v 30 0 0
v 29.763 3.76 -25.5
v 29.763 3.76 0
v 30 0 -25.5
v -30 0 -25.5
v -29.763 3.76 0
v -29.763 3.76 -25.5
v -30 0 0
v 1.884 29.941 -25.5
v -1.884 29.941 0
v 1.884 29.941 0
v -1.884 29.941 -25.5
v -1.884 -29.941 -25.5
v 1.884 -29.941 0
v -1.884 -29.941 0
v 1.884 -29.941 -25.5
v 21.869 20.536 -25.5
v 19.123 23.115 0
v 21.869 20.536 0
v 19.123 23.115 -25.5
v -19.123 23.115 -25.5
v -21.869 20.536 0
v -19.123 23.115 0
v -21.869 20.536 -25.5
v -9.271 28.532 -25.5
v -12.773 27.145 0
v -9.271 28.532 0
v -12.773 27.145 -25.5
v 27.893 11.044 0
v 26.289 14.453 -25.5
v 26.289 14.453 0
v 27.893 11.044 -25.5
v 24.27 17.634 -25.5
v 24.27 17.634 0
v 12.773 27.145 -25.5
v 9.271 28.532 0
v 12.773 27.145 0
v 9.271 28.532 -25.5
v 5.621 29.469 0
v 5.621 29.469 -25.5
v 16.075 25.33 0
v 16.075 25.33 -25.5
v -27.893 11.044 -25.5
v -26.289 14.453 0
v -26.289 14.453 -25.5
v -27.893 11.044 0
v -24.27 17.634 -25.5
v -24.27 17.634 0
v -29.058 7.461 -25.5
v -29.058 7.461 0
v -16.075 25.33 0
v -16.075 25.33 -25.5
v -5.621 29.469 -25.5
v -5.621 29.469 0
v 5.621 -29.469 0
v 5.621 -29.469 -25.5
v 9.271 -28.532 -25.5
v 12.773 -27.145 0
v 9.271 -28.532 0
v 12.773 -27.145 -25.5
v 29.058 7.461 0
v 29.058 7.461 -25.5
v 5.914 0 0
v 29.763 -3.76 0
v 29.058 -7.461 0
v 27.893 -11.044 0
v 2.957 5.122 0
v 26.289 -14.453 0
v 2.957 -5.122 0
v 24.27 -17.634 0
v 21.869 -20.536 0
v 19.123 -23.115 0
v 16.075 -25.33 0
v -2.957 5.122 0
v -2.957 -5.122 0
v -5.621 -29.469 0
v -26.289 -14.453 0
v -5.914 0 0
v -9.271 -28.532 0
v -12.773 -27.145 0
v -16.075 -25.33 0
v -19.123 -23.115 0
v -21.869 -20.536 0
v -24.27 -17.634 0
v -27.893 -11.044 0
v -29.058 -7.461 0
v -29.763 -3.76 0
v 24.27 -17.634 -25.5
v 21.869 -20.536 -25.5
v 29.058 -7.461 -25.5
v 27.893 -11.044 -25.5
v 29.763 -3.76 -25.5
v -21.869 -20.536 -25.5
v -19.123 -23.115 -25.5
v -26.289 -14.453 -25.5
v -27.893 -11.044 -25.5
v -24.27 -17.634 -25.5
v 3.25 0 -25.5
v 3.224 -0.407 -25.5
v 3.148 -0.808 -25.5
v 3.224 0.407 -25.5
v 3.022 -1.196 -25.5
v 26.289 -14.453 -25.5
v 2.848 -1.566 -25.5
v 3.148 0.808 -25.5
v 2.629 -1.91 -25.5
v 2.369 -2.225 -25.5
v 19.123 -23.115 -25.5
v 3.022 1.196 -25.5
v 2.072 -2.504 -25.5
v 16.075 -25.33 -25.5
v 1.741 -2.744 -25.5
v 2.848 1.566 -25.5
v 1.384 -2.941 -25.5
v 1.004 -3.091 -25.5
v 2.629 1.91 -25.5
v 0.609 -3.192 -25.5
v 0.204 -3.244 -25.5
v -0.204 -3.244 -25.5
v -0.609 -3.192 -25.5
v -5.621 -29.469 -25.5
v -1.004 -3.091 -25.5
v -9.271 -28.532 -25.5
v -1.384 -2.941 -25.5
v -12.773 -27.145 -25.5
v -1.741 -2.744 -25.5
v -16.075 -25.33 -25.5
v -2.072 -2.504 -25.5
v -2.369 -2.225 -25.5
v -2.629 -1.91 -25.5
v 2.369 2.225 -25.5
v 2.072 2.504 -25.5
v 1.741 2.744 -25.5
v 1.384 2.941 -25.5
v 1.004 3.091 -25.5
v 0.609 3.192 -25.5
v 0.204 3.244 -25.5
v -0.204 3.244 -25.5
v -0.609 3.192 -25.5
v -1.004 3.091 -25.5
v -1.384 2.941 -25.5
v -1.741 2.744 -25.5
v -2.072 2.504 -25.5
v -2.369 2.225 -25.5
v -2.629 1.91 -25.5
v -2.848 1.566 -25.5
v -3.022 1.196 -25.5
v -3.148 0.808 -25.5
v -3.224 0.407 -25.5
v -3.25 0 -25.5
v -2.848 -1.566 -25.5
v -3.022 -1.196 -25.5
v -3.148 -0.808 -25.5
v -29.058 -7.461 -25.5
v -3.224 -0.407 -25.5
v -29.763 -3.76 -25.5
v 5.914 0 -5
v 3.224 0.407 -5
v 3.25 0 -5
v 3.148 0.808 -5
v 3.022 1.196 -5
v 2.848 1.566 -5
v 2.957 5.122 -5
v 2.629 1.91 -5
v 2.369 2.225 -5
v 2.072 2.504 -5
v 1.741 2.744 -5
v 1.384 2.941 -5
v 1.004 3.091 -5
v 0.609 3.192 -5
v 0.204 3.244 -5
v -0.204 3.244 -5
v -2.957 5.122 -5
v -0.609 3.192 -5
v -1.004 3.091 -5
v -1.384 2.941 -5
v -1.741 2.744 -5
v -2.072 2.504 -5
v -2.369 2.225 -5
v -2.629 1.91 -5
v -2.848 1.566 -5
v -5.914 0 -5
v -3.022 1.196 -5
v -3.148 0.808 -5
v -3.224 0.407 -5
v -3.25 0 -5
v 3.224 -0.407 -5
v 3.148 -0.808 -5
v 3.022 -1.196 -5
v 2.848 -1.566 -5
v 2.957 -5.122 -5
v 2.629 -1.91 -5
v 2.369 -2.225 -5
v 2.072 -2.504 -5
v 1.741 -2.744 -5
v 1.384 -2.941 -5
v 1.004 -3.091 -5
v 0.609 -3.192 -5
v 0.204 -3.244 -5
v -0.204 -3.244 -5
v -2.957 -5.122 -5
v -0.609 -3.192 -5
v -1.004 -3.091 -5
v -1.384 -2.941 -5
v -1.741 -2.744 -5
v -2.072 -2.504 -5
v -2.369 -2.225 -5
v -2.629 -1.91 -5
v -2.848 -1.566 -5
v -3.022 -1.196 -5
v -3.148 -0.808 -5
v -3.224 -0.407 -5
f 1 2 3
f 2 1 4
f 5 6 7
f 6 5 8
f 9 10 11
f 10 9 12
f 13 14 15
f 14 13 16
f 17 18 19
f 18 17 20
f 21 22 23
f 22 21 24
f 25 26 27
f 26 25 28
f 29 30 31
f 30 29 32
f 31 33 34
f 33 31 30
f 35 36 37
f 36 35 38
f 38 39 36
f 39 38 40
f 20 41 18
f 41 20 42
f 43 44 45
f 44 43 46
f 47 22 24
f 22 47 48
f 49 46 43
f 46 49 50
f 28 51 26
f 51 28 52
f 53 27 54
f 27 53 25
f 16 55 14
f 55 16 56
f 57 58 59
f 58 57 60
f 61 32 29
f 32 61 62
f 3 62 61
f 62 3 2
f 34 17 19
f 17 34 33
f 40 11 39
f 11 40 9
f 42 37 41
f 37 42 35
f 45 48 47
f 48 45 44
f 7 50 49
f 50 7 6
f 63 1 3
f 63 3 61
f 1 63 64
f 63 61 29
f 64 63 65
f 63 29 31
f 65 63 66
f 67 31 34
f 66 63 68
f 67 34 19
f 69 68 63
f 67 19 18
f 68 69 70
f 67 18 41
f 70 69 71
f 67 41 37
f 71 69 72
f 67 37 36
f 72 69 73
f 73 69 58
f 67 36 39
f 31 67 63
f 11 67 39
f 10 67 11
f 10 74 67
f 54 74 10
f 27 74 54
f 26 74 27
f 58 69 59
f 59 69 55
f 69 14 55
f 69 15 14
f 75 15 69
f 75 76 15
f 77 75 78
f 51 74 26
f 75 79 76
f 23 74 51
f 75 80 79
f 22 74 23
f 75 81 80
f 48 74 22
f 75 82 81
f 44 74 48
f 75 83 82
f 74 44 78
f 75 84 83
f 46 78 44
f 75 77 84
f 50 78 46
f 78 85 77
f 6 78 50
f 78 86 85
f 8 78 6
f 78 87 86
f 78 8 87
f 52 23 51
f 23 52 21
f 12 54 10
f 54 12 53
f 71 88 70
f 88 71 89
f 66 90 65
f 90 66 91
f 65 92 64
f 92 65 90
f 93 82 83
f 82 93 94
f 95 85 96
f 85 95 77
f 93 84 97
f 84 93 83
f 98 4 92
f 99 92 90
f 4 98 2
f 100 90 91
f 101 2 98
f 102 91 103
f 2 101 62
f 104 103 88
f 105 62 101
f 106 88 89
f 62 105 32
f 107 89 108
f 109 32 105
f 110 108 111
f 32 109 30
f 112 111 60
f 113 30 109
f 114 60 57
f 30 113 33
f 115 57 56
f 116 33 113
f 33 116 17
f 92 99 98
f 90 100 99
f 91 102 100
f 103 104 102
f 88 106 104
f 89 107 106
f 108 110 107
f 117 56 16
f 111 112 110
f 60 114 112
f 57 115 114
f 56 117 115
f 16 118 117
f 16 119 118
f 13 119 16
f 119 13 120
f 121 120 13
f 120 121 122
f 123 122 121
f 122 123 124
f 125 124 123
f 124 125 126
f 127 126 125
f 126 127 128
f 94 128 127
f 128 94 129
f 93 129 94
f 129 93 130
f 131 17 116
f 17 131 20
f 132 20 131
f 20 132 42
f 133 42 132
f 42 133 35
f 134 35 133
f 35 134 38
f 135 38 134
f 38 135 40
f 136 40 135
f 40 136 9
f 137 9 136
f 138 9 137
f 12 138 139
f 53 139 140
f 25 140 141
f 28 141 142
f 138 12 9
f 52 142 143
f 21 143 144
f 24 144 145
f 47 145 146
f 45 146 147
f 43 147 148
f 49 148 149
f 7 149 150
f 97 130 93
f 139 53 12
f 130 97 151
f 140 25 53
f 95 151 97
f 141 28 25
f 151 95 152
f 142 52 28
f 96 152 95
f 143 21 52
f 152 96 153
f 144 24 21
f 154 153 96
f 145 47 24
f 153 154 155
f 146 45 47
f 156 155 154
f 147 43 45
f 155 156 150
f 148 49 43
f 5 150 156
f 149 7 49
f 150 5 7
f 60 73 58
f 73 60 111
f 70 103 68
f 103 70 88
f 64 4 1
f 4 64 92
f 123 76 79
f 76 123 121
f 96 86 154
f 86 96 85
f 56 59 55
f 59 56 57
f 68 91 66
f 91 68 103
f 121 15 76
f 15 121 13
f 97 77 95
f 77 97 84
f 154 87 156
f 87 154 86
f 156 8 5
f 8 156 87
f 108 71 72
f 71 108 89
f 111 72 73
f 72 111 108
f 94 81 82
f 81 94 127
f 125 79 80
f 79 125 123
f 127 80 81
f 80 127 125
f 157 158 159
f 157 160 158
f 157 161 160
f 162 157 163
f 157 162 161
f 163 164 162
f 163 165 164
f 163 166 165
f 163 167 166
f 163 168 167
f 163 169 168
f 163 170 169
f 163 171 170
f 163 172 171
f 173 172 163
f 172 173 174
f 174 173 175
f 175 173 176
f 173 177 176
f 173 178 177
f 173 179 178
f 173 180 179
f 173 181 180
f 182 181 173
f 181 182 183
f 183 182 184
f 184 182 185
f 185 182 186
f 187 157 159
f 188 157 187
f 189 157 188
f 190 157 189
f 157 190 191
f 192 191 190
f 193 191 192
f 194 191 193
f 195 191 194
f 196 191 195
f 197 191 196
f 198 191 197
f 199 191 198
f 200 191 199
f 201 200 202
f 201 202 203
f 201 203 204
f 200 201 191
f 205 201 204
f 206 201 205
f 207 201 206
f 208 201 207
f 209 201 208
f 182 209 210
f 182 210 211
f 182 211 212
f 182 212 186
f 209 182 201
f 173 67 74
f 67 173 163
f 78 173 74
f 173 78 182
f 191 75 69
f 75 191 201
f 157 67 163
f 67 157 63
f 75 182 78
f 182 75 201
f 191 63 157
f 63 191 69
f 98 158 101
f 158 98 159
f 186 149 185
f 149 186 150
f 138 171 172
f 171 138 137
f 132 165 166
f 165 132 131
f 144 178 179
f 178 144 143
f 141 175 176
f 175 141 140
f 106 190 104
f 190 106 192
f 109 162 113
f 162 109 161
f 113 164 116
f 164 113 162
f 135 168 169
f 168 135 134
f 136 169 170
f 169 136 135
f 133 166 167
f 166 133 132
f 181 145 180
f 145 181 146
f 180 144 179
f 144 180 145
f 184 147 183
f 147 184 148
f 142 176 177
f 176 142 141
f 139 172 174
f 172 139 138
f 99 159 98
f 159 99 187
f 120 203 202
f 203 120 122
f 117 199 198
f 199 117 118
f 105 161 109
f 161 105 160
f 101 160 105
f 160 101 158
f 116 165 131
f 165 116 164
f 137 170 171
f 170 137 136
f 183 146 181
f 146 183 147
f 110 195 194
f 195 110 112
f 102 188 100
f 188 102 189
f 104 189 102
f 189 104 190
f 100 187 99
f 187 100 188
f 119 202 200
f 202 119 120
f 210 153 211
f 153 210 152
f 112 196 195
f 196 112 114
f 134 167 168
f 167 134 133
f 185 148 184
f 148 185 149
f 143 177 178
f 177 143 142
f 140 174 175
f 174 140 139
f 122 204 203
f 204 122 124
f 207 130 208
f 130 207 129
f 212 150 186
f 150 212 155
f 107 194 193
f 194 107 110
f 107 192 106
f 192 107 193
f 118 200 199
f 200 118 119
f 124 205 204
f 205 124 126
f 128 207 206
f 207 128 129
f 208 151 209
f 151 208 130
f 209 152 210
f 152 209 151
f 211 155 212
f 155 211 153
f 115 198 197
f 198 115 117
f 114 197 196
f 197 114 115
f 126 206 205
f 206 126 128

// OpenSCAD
$fn = 50;

difference() {
	union() {
		translate(v = [0, 0, -25.5]) {
			cylinder(h = 25.5, r = 30.0);
		}
		#translate(v = [0, 0, -27.0]) {
			cylinder(h = 27, r = 2.875);
		}
	}
	union() {
		translate(v = [0, 0, 0]) {
			rotate(a = [0, 0, 0]) {
				difference() {
					union() {
						translate(v = [0, 0, -5]) {
							linear_extrude(height = 5) {
								polygon(points = [[5.914249999999999, 0.0], [2.957125, 5.1218907443321156], [-2.9571249999999982, 5.1218907443321156], [-5.914249999999999, 7.242867331857232e-16], [-2.9571250000000022, -5.121890744332115], [2.9571249999999956, -5.121890744332118]]);
							}
						}
					}
					union();
				}
			}
		}
		#translate(v = [0, 0, -100.0]) {
			cylinder(h = 200, r = 3.25);
		}
	}
}
